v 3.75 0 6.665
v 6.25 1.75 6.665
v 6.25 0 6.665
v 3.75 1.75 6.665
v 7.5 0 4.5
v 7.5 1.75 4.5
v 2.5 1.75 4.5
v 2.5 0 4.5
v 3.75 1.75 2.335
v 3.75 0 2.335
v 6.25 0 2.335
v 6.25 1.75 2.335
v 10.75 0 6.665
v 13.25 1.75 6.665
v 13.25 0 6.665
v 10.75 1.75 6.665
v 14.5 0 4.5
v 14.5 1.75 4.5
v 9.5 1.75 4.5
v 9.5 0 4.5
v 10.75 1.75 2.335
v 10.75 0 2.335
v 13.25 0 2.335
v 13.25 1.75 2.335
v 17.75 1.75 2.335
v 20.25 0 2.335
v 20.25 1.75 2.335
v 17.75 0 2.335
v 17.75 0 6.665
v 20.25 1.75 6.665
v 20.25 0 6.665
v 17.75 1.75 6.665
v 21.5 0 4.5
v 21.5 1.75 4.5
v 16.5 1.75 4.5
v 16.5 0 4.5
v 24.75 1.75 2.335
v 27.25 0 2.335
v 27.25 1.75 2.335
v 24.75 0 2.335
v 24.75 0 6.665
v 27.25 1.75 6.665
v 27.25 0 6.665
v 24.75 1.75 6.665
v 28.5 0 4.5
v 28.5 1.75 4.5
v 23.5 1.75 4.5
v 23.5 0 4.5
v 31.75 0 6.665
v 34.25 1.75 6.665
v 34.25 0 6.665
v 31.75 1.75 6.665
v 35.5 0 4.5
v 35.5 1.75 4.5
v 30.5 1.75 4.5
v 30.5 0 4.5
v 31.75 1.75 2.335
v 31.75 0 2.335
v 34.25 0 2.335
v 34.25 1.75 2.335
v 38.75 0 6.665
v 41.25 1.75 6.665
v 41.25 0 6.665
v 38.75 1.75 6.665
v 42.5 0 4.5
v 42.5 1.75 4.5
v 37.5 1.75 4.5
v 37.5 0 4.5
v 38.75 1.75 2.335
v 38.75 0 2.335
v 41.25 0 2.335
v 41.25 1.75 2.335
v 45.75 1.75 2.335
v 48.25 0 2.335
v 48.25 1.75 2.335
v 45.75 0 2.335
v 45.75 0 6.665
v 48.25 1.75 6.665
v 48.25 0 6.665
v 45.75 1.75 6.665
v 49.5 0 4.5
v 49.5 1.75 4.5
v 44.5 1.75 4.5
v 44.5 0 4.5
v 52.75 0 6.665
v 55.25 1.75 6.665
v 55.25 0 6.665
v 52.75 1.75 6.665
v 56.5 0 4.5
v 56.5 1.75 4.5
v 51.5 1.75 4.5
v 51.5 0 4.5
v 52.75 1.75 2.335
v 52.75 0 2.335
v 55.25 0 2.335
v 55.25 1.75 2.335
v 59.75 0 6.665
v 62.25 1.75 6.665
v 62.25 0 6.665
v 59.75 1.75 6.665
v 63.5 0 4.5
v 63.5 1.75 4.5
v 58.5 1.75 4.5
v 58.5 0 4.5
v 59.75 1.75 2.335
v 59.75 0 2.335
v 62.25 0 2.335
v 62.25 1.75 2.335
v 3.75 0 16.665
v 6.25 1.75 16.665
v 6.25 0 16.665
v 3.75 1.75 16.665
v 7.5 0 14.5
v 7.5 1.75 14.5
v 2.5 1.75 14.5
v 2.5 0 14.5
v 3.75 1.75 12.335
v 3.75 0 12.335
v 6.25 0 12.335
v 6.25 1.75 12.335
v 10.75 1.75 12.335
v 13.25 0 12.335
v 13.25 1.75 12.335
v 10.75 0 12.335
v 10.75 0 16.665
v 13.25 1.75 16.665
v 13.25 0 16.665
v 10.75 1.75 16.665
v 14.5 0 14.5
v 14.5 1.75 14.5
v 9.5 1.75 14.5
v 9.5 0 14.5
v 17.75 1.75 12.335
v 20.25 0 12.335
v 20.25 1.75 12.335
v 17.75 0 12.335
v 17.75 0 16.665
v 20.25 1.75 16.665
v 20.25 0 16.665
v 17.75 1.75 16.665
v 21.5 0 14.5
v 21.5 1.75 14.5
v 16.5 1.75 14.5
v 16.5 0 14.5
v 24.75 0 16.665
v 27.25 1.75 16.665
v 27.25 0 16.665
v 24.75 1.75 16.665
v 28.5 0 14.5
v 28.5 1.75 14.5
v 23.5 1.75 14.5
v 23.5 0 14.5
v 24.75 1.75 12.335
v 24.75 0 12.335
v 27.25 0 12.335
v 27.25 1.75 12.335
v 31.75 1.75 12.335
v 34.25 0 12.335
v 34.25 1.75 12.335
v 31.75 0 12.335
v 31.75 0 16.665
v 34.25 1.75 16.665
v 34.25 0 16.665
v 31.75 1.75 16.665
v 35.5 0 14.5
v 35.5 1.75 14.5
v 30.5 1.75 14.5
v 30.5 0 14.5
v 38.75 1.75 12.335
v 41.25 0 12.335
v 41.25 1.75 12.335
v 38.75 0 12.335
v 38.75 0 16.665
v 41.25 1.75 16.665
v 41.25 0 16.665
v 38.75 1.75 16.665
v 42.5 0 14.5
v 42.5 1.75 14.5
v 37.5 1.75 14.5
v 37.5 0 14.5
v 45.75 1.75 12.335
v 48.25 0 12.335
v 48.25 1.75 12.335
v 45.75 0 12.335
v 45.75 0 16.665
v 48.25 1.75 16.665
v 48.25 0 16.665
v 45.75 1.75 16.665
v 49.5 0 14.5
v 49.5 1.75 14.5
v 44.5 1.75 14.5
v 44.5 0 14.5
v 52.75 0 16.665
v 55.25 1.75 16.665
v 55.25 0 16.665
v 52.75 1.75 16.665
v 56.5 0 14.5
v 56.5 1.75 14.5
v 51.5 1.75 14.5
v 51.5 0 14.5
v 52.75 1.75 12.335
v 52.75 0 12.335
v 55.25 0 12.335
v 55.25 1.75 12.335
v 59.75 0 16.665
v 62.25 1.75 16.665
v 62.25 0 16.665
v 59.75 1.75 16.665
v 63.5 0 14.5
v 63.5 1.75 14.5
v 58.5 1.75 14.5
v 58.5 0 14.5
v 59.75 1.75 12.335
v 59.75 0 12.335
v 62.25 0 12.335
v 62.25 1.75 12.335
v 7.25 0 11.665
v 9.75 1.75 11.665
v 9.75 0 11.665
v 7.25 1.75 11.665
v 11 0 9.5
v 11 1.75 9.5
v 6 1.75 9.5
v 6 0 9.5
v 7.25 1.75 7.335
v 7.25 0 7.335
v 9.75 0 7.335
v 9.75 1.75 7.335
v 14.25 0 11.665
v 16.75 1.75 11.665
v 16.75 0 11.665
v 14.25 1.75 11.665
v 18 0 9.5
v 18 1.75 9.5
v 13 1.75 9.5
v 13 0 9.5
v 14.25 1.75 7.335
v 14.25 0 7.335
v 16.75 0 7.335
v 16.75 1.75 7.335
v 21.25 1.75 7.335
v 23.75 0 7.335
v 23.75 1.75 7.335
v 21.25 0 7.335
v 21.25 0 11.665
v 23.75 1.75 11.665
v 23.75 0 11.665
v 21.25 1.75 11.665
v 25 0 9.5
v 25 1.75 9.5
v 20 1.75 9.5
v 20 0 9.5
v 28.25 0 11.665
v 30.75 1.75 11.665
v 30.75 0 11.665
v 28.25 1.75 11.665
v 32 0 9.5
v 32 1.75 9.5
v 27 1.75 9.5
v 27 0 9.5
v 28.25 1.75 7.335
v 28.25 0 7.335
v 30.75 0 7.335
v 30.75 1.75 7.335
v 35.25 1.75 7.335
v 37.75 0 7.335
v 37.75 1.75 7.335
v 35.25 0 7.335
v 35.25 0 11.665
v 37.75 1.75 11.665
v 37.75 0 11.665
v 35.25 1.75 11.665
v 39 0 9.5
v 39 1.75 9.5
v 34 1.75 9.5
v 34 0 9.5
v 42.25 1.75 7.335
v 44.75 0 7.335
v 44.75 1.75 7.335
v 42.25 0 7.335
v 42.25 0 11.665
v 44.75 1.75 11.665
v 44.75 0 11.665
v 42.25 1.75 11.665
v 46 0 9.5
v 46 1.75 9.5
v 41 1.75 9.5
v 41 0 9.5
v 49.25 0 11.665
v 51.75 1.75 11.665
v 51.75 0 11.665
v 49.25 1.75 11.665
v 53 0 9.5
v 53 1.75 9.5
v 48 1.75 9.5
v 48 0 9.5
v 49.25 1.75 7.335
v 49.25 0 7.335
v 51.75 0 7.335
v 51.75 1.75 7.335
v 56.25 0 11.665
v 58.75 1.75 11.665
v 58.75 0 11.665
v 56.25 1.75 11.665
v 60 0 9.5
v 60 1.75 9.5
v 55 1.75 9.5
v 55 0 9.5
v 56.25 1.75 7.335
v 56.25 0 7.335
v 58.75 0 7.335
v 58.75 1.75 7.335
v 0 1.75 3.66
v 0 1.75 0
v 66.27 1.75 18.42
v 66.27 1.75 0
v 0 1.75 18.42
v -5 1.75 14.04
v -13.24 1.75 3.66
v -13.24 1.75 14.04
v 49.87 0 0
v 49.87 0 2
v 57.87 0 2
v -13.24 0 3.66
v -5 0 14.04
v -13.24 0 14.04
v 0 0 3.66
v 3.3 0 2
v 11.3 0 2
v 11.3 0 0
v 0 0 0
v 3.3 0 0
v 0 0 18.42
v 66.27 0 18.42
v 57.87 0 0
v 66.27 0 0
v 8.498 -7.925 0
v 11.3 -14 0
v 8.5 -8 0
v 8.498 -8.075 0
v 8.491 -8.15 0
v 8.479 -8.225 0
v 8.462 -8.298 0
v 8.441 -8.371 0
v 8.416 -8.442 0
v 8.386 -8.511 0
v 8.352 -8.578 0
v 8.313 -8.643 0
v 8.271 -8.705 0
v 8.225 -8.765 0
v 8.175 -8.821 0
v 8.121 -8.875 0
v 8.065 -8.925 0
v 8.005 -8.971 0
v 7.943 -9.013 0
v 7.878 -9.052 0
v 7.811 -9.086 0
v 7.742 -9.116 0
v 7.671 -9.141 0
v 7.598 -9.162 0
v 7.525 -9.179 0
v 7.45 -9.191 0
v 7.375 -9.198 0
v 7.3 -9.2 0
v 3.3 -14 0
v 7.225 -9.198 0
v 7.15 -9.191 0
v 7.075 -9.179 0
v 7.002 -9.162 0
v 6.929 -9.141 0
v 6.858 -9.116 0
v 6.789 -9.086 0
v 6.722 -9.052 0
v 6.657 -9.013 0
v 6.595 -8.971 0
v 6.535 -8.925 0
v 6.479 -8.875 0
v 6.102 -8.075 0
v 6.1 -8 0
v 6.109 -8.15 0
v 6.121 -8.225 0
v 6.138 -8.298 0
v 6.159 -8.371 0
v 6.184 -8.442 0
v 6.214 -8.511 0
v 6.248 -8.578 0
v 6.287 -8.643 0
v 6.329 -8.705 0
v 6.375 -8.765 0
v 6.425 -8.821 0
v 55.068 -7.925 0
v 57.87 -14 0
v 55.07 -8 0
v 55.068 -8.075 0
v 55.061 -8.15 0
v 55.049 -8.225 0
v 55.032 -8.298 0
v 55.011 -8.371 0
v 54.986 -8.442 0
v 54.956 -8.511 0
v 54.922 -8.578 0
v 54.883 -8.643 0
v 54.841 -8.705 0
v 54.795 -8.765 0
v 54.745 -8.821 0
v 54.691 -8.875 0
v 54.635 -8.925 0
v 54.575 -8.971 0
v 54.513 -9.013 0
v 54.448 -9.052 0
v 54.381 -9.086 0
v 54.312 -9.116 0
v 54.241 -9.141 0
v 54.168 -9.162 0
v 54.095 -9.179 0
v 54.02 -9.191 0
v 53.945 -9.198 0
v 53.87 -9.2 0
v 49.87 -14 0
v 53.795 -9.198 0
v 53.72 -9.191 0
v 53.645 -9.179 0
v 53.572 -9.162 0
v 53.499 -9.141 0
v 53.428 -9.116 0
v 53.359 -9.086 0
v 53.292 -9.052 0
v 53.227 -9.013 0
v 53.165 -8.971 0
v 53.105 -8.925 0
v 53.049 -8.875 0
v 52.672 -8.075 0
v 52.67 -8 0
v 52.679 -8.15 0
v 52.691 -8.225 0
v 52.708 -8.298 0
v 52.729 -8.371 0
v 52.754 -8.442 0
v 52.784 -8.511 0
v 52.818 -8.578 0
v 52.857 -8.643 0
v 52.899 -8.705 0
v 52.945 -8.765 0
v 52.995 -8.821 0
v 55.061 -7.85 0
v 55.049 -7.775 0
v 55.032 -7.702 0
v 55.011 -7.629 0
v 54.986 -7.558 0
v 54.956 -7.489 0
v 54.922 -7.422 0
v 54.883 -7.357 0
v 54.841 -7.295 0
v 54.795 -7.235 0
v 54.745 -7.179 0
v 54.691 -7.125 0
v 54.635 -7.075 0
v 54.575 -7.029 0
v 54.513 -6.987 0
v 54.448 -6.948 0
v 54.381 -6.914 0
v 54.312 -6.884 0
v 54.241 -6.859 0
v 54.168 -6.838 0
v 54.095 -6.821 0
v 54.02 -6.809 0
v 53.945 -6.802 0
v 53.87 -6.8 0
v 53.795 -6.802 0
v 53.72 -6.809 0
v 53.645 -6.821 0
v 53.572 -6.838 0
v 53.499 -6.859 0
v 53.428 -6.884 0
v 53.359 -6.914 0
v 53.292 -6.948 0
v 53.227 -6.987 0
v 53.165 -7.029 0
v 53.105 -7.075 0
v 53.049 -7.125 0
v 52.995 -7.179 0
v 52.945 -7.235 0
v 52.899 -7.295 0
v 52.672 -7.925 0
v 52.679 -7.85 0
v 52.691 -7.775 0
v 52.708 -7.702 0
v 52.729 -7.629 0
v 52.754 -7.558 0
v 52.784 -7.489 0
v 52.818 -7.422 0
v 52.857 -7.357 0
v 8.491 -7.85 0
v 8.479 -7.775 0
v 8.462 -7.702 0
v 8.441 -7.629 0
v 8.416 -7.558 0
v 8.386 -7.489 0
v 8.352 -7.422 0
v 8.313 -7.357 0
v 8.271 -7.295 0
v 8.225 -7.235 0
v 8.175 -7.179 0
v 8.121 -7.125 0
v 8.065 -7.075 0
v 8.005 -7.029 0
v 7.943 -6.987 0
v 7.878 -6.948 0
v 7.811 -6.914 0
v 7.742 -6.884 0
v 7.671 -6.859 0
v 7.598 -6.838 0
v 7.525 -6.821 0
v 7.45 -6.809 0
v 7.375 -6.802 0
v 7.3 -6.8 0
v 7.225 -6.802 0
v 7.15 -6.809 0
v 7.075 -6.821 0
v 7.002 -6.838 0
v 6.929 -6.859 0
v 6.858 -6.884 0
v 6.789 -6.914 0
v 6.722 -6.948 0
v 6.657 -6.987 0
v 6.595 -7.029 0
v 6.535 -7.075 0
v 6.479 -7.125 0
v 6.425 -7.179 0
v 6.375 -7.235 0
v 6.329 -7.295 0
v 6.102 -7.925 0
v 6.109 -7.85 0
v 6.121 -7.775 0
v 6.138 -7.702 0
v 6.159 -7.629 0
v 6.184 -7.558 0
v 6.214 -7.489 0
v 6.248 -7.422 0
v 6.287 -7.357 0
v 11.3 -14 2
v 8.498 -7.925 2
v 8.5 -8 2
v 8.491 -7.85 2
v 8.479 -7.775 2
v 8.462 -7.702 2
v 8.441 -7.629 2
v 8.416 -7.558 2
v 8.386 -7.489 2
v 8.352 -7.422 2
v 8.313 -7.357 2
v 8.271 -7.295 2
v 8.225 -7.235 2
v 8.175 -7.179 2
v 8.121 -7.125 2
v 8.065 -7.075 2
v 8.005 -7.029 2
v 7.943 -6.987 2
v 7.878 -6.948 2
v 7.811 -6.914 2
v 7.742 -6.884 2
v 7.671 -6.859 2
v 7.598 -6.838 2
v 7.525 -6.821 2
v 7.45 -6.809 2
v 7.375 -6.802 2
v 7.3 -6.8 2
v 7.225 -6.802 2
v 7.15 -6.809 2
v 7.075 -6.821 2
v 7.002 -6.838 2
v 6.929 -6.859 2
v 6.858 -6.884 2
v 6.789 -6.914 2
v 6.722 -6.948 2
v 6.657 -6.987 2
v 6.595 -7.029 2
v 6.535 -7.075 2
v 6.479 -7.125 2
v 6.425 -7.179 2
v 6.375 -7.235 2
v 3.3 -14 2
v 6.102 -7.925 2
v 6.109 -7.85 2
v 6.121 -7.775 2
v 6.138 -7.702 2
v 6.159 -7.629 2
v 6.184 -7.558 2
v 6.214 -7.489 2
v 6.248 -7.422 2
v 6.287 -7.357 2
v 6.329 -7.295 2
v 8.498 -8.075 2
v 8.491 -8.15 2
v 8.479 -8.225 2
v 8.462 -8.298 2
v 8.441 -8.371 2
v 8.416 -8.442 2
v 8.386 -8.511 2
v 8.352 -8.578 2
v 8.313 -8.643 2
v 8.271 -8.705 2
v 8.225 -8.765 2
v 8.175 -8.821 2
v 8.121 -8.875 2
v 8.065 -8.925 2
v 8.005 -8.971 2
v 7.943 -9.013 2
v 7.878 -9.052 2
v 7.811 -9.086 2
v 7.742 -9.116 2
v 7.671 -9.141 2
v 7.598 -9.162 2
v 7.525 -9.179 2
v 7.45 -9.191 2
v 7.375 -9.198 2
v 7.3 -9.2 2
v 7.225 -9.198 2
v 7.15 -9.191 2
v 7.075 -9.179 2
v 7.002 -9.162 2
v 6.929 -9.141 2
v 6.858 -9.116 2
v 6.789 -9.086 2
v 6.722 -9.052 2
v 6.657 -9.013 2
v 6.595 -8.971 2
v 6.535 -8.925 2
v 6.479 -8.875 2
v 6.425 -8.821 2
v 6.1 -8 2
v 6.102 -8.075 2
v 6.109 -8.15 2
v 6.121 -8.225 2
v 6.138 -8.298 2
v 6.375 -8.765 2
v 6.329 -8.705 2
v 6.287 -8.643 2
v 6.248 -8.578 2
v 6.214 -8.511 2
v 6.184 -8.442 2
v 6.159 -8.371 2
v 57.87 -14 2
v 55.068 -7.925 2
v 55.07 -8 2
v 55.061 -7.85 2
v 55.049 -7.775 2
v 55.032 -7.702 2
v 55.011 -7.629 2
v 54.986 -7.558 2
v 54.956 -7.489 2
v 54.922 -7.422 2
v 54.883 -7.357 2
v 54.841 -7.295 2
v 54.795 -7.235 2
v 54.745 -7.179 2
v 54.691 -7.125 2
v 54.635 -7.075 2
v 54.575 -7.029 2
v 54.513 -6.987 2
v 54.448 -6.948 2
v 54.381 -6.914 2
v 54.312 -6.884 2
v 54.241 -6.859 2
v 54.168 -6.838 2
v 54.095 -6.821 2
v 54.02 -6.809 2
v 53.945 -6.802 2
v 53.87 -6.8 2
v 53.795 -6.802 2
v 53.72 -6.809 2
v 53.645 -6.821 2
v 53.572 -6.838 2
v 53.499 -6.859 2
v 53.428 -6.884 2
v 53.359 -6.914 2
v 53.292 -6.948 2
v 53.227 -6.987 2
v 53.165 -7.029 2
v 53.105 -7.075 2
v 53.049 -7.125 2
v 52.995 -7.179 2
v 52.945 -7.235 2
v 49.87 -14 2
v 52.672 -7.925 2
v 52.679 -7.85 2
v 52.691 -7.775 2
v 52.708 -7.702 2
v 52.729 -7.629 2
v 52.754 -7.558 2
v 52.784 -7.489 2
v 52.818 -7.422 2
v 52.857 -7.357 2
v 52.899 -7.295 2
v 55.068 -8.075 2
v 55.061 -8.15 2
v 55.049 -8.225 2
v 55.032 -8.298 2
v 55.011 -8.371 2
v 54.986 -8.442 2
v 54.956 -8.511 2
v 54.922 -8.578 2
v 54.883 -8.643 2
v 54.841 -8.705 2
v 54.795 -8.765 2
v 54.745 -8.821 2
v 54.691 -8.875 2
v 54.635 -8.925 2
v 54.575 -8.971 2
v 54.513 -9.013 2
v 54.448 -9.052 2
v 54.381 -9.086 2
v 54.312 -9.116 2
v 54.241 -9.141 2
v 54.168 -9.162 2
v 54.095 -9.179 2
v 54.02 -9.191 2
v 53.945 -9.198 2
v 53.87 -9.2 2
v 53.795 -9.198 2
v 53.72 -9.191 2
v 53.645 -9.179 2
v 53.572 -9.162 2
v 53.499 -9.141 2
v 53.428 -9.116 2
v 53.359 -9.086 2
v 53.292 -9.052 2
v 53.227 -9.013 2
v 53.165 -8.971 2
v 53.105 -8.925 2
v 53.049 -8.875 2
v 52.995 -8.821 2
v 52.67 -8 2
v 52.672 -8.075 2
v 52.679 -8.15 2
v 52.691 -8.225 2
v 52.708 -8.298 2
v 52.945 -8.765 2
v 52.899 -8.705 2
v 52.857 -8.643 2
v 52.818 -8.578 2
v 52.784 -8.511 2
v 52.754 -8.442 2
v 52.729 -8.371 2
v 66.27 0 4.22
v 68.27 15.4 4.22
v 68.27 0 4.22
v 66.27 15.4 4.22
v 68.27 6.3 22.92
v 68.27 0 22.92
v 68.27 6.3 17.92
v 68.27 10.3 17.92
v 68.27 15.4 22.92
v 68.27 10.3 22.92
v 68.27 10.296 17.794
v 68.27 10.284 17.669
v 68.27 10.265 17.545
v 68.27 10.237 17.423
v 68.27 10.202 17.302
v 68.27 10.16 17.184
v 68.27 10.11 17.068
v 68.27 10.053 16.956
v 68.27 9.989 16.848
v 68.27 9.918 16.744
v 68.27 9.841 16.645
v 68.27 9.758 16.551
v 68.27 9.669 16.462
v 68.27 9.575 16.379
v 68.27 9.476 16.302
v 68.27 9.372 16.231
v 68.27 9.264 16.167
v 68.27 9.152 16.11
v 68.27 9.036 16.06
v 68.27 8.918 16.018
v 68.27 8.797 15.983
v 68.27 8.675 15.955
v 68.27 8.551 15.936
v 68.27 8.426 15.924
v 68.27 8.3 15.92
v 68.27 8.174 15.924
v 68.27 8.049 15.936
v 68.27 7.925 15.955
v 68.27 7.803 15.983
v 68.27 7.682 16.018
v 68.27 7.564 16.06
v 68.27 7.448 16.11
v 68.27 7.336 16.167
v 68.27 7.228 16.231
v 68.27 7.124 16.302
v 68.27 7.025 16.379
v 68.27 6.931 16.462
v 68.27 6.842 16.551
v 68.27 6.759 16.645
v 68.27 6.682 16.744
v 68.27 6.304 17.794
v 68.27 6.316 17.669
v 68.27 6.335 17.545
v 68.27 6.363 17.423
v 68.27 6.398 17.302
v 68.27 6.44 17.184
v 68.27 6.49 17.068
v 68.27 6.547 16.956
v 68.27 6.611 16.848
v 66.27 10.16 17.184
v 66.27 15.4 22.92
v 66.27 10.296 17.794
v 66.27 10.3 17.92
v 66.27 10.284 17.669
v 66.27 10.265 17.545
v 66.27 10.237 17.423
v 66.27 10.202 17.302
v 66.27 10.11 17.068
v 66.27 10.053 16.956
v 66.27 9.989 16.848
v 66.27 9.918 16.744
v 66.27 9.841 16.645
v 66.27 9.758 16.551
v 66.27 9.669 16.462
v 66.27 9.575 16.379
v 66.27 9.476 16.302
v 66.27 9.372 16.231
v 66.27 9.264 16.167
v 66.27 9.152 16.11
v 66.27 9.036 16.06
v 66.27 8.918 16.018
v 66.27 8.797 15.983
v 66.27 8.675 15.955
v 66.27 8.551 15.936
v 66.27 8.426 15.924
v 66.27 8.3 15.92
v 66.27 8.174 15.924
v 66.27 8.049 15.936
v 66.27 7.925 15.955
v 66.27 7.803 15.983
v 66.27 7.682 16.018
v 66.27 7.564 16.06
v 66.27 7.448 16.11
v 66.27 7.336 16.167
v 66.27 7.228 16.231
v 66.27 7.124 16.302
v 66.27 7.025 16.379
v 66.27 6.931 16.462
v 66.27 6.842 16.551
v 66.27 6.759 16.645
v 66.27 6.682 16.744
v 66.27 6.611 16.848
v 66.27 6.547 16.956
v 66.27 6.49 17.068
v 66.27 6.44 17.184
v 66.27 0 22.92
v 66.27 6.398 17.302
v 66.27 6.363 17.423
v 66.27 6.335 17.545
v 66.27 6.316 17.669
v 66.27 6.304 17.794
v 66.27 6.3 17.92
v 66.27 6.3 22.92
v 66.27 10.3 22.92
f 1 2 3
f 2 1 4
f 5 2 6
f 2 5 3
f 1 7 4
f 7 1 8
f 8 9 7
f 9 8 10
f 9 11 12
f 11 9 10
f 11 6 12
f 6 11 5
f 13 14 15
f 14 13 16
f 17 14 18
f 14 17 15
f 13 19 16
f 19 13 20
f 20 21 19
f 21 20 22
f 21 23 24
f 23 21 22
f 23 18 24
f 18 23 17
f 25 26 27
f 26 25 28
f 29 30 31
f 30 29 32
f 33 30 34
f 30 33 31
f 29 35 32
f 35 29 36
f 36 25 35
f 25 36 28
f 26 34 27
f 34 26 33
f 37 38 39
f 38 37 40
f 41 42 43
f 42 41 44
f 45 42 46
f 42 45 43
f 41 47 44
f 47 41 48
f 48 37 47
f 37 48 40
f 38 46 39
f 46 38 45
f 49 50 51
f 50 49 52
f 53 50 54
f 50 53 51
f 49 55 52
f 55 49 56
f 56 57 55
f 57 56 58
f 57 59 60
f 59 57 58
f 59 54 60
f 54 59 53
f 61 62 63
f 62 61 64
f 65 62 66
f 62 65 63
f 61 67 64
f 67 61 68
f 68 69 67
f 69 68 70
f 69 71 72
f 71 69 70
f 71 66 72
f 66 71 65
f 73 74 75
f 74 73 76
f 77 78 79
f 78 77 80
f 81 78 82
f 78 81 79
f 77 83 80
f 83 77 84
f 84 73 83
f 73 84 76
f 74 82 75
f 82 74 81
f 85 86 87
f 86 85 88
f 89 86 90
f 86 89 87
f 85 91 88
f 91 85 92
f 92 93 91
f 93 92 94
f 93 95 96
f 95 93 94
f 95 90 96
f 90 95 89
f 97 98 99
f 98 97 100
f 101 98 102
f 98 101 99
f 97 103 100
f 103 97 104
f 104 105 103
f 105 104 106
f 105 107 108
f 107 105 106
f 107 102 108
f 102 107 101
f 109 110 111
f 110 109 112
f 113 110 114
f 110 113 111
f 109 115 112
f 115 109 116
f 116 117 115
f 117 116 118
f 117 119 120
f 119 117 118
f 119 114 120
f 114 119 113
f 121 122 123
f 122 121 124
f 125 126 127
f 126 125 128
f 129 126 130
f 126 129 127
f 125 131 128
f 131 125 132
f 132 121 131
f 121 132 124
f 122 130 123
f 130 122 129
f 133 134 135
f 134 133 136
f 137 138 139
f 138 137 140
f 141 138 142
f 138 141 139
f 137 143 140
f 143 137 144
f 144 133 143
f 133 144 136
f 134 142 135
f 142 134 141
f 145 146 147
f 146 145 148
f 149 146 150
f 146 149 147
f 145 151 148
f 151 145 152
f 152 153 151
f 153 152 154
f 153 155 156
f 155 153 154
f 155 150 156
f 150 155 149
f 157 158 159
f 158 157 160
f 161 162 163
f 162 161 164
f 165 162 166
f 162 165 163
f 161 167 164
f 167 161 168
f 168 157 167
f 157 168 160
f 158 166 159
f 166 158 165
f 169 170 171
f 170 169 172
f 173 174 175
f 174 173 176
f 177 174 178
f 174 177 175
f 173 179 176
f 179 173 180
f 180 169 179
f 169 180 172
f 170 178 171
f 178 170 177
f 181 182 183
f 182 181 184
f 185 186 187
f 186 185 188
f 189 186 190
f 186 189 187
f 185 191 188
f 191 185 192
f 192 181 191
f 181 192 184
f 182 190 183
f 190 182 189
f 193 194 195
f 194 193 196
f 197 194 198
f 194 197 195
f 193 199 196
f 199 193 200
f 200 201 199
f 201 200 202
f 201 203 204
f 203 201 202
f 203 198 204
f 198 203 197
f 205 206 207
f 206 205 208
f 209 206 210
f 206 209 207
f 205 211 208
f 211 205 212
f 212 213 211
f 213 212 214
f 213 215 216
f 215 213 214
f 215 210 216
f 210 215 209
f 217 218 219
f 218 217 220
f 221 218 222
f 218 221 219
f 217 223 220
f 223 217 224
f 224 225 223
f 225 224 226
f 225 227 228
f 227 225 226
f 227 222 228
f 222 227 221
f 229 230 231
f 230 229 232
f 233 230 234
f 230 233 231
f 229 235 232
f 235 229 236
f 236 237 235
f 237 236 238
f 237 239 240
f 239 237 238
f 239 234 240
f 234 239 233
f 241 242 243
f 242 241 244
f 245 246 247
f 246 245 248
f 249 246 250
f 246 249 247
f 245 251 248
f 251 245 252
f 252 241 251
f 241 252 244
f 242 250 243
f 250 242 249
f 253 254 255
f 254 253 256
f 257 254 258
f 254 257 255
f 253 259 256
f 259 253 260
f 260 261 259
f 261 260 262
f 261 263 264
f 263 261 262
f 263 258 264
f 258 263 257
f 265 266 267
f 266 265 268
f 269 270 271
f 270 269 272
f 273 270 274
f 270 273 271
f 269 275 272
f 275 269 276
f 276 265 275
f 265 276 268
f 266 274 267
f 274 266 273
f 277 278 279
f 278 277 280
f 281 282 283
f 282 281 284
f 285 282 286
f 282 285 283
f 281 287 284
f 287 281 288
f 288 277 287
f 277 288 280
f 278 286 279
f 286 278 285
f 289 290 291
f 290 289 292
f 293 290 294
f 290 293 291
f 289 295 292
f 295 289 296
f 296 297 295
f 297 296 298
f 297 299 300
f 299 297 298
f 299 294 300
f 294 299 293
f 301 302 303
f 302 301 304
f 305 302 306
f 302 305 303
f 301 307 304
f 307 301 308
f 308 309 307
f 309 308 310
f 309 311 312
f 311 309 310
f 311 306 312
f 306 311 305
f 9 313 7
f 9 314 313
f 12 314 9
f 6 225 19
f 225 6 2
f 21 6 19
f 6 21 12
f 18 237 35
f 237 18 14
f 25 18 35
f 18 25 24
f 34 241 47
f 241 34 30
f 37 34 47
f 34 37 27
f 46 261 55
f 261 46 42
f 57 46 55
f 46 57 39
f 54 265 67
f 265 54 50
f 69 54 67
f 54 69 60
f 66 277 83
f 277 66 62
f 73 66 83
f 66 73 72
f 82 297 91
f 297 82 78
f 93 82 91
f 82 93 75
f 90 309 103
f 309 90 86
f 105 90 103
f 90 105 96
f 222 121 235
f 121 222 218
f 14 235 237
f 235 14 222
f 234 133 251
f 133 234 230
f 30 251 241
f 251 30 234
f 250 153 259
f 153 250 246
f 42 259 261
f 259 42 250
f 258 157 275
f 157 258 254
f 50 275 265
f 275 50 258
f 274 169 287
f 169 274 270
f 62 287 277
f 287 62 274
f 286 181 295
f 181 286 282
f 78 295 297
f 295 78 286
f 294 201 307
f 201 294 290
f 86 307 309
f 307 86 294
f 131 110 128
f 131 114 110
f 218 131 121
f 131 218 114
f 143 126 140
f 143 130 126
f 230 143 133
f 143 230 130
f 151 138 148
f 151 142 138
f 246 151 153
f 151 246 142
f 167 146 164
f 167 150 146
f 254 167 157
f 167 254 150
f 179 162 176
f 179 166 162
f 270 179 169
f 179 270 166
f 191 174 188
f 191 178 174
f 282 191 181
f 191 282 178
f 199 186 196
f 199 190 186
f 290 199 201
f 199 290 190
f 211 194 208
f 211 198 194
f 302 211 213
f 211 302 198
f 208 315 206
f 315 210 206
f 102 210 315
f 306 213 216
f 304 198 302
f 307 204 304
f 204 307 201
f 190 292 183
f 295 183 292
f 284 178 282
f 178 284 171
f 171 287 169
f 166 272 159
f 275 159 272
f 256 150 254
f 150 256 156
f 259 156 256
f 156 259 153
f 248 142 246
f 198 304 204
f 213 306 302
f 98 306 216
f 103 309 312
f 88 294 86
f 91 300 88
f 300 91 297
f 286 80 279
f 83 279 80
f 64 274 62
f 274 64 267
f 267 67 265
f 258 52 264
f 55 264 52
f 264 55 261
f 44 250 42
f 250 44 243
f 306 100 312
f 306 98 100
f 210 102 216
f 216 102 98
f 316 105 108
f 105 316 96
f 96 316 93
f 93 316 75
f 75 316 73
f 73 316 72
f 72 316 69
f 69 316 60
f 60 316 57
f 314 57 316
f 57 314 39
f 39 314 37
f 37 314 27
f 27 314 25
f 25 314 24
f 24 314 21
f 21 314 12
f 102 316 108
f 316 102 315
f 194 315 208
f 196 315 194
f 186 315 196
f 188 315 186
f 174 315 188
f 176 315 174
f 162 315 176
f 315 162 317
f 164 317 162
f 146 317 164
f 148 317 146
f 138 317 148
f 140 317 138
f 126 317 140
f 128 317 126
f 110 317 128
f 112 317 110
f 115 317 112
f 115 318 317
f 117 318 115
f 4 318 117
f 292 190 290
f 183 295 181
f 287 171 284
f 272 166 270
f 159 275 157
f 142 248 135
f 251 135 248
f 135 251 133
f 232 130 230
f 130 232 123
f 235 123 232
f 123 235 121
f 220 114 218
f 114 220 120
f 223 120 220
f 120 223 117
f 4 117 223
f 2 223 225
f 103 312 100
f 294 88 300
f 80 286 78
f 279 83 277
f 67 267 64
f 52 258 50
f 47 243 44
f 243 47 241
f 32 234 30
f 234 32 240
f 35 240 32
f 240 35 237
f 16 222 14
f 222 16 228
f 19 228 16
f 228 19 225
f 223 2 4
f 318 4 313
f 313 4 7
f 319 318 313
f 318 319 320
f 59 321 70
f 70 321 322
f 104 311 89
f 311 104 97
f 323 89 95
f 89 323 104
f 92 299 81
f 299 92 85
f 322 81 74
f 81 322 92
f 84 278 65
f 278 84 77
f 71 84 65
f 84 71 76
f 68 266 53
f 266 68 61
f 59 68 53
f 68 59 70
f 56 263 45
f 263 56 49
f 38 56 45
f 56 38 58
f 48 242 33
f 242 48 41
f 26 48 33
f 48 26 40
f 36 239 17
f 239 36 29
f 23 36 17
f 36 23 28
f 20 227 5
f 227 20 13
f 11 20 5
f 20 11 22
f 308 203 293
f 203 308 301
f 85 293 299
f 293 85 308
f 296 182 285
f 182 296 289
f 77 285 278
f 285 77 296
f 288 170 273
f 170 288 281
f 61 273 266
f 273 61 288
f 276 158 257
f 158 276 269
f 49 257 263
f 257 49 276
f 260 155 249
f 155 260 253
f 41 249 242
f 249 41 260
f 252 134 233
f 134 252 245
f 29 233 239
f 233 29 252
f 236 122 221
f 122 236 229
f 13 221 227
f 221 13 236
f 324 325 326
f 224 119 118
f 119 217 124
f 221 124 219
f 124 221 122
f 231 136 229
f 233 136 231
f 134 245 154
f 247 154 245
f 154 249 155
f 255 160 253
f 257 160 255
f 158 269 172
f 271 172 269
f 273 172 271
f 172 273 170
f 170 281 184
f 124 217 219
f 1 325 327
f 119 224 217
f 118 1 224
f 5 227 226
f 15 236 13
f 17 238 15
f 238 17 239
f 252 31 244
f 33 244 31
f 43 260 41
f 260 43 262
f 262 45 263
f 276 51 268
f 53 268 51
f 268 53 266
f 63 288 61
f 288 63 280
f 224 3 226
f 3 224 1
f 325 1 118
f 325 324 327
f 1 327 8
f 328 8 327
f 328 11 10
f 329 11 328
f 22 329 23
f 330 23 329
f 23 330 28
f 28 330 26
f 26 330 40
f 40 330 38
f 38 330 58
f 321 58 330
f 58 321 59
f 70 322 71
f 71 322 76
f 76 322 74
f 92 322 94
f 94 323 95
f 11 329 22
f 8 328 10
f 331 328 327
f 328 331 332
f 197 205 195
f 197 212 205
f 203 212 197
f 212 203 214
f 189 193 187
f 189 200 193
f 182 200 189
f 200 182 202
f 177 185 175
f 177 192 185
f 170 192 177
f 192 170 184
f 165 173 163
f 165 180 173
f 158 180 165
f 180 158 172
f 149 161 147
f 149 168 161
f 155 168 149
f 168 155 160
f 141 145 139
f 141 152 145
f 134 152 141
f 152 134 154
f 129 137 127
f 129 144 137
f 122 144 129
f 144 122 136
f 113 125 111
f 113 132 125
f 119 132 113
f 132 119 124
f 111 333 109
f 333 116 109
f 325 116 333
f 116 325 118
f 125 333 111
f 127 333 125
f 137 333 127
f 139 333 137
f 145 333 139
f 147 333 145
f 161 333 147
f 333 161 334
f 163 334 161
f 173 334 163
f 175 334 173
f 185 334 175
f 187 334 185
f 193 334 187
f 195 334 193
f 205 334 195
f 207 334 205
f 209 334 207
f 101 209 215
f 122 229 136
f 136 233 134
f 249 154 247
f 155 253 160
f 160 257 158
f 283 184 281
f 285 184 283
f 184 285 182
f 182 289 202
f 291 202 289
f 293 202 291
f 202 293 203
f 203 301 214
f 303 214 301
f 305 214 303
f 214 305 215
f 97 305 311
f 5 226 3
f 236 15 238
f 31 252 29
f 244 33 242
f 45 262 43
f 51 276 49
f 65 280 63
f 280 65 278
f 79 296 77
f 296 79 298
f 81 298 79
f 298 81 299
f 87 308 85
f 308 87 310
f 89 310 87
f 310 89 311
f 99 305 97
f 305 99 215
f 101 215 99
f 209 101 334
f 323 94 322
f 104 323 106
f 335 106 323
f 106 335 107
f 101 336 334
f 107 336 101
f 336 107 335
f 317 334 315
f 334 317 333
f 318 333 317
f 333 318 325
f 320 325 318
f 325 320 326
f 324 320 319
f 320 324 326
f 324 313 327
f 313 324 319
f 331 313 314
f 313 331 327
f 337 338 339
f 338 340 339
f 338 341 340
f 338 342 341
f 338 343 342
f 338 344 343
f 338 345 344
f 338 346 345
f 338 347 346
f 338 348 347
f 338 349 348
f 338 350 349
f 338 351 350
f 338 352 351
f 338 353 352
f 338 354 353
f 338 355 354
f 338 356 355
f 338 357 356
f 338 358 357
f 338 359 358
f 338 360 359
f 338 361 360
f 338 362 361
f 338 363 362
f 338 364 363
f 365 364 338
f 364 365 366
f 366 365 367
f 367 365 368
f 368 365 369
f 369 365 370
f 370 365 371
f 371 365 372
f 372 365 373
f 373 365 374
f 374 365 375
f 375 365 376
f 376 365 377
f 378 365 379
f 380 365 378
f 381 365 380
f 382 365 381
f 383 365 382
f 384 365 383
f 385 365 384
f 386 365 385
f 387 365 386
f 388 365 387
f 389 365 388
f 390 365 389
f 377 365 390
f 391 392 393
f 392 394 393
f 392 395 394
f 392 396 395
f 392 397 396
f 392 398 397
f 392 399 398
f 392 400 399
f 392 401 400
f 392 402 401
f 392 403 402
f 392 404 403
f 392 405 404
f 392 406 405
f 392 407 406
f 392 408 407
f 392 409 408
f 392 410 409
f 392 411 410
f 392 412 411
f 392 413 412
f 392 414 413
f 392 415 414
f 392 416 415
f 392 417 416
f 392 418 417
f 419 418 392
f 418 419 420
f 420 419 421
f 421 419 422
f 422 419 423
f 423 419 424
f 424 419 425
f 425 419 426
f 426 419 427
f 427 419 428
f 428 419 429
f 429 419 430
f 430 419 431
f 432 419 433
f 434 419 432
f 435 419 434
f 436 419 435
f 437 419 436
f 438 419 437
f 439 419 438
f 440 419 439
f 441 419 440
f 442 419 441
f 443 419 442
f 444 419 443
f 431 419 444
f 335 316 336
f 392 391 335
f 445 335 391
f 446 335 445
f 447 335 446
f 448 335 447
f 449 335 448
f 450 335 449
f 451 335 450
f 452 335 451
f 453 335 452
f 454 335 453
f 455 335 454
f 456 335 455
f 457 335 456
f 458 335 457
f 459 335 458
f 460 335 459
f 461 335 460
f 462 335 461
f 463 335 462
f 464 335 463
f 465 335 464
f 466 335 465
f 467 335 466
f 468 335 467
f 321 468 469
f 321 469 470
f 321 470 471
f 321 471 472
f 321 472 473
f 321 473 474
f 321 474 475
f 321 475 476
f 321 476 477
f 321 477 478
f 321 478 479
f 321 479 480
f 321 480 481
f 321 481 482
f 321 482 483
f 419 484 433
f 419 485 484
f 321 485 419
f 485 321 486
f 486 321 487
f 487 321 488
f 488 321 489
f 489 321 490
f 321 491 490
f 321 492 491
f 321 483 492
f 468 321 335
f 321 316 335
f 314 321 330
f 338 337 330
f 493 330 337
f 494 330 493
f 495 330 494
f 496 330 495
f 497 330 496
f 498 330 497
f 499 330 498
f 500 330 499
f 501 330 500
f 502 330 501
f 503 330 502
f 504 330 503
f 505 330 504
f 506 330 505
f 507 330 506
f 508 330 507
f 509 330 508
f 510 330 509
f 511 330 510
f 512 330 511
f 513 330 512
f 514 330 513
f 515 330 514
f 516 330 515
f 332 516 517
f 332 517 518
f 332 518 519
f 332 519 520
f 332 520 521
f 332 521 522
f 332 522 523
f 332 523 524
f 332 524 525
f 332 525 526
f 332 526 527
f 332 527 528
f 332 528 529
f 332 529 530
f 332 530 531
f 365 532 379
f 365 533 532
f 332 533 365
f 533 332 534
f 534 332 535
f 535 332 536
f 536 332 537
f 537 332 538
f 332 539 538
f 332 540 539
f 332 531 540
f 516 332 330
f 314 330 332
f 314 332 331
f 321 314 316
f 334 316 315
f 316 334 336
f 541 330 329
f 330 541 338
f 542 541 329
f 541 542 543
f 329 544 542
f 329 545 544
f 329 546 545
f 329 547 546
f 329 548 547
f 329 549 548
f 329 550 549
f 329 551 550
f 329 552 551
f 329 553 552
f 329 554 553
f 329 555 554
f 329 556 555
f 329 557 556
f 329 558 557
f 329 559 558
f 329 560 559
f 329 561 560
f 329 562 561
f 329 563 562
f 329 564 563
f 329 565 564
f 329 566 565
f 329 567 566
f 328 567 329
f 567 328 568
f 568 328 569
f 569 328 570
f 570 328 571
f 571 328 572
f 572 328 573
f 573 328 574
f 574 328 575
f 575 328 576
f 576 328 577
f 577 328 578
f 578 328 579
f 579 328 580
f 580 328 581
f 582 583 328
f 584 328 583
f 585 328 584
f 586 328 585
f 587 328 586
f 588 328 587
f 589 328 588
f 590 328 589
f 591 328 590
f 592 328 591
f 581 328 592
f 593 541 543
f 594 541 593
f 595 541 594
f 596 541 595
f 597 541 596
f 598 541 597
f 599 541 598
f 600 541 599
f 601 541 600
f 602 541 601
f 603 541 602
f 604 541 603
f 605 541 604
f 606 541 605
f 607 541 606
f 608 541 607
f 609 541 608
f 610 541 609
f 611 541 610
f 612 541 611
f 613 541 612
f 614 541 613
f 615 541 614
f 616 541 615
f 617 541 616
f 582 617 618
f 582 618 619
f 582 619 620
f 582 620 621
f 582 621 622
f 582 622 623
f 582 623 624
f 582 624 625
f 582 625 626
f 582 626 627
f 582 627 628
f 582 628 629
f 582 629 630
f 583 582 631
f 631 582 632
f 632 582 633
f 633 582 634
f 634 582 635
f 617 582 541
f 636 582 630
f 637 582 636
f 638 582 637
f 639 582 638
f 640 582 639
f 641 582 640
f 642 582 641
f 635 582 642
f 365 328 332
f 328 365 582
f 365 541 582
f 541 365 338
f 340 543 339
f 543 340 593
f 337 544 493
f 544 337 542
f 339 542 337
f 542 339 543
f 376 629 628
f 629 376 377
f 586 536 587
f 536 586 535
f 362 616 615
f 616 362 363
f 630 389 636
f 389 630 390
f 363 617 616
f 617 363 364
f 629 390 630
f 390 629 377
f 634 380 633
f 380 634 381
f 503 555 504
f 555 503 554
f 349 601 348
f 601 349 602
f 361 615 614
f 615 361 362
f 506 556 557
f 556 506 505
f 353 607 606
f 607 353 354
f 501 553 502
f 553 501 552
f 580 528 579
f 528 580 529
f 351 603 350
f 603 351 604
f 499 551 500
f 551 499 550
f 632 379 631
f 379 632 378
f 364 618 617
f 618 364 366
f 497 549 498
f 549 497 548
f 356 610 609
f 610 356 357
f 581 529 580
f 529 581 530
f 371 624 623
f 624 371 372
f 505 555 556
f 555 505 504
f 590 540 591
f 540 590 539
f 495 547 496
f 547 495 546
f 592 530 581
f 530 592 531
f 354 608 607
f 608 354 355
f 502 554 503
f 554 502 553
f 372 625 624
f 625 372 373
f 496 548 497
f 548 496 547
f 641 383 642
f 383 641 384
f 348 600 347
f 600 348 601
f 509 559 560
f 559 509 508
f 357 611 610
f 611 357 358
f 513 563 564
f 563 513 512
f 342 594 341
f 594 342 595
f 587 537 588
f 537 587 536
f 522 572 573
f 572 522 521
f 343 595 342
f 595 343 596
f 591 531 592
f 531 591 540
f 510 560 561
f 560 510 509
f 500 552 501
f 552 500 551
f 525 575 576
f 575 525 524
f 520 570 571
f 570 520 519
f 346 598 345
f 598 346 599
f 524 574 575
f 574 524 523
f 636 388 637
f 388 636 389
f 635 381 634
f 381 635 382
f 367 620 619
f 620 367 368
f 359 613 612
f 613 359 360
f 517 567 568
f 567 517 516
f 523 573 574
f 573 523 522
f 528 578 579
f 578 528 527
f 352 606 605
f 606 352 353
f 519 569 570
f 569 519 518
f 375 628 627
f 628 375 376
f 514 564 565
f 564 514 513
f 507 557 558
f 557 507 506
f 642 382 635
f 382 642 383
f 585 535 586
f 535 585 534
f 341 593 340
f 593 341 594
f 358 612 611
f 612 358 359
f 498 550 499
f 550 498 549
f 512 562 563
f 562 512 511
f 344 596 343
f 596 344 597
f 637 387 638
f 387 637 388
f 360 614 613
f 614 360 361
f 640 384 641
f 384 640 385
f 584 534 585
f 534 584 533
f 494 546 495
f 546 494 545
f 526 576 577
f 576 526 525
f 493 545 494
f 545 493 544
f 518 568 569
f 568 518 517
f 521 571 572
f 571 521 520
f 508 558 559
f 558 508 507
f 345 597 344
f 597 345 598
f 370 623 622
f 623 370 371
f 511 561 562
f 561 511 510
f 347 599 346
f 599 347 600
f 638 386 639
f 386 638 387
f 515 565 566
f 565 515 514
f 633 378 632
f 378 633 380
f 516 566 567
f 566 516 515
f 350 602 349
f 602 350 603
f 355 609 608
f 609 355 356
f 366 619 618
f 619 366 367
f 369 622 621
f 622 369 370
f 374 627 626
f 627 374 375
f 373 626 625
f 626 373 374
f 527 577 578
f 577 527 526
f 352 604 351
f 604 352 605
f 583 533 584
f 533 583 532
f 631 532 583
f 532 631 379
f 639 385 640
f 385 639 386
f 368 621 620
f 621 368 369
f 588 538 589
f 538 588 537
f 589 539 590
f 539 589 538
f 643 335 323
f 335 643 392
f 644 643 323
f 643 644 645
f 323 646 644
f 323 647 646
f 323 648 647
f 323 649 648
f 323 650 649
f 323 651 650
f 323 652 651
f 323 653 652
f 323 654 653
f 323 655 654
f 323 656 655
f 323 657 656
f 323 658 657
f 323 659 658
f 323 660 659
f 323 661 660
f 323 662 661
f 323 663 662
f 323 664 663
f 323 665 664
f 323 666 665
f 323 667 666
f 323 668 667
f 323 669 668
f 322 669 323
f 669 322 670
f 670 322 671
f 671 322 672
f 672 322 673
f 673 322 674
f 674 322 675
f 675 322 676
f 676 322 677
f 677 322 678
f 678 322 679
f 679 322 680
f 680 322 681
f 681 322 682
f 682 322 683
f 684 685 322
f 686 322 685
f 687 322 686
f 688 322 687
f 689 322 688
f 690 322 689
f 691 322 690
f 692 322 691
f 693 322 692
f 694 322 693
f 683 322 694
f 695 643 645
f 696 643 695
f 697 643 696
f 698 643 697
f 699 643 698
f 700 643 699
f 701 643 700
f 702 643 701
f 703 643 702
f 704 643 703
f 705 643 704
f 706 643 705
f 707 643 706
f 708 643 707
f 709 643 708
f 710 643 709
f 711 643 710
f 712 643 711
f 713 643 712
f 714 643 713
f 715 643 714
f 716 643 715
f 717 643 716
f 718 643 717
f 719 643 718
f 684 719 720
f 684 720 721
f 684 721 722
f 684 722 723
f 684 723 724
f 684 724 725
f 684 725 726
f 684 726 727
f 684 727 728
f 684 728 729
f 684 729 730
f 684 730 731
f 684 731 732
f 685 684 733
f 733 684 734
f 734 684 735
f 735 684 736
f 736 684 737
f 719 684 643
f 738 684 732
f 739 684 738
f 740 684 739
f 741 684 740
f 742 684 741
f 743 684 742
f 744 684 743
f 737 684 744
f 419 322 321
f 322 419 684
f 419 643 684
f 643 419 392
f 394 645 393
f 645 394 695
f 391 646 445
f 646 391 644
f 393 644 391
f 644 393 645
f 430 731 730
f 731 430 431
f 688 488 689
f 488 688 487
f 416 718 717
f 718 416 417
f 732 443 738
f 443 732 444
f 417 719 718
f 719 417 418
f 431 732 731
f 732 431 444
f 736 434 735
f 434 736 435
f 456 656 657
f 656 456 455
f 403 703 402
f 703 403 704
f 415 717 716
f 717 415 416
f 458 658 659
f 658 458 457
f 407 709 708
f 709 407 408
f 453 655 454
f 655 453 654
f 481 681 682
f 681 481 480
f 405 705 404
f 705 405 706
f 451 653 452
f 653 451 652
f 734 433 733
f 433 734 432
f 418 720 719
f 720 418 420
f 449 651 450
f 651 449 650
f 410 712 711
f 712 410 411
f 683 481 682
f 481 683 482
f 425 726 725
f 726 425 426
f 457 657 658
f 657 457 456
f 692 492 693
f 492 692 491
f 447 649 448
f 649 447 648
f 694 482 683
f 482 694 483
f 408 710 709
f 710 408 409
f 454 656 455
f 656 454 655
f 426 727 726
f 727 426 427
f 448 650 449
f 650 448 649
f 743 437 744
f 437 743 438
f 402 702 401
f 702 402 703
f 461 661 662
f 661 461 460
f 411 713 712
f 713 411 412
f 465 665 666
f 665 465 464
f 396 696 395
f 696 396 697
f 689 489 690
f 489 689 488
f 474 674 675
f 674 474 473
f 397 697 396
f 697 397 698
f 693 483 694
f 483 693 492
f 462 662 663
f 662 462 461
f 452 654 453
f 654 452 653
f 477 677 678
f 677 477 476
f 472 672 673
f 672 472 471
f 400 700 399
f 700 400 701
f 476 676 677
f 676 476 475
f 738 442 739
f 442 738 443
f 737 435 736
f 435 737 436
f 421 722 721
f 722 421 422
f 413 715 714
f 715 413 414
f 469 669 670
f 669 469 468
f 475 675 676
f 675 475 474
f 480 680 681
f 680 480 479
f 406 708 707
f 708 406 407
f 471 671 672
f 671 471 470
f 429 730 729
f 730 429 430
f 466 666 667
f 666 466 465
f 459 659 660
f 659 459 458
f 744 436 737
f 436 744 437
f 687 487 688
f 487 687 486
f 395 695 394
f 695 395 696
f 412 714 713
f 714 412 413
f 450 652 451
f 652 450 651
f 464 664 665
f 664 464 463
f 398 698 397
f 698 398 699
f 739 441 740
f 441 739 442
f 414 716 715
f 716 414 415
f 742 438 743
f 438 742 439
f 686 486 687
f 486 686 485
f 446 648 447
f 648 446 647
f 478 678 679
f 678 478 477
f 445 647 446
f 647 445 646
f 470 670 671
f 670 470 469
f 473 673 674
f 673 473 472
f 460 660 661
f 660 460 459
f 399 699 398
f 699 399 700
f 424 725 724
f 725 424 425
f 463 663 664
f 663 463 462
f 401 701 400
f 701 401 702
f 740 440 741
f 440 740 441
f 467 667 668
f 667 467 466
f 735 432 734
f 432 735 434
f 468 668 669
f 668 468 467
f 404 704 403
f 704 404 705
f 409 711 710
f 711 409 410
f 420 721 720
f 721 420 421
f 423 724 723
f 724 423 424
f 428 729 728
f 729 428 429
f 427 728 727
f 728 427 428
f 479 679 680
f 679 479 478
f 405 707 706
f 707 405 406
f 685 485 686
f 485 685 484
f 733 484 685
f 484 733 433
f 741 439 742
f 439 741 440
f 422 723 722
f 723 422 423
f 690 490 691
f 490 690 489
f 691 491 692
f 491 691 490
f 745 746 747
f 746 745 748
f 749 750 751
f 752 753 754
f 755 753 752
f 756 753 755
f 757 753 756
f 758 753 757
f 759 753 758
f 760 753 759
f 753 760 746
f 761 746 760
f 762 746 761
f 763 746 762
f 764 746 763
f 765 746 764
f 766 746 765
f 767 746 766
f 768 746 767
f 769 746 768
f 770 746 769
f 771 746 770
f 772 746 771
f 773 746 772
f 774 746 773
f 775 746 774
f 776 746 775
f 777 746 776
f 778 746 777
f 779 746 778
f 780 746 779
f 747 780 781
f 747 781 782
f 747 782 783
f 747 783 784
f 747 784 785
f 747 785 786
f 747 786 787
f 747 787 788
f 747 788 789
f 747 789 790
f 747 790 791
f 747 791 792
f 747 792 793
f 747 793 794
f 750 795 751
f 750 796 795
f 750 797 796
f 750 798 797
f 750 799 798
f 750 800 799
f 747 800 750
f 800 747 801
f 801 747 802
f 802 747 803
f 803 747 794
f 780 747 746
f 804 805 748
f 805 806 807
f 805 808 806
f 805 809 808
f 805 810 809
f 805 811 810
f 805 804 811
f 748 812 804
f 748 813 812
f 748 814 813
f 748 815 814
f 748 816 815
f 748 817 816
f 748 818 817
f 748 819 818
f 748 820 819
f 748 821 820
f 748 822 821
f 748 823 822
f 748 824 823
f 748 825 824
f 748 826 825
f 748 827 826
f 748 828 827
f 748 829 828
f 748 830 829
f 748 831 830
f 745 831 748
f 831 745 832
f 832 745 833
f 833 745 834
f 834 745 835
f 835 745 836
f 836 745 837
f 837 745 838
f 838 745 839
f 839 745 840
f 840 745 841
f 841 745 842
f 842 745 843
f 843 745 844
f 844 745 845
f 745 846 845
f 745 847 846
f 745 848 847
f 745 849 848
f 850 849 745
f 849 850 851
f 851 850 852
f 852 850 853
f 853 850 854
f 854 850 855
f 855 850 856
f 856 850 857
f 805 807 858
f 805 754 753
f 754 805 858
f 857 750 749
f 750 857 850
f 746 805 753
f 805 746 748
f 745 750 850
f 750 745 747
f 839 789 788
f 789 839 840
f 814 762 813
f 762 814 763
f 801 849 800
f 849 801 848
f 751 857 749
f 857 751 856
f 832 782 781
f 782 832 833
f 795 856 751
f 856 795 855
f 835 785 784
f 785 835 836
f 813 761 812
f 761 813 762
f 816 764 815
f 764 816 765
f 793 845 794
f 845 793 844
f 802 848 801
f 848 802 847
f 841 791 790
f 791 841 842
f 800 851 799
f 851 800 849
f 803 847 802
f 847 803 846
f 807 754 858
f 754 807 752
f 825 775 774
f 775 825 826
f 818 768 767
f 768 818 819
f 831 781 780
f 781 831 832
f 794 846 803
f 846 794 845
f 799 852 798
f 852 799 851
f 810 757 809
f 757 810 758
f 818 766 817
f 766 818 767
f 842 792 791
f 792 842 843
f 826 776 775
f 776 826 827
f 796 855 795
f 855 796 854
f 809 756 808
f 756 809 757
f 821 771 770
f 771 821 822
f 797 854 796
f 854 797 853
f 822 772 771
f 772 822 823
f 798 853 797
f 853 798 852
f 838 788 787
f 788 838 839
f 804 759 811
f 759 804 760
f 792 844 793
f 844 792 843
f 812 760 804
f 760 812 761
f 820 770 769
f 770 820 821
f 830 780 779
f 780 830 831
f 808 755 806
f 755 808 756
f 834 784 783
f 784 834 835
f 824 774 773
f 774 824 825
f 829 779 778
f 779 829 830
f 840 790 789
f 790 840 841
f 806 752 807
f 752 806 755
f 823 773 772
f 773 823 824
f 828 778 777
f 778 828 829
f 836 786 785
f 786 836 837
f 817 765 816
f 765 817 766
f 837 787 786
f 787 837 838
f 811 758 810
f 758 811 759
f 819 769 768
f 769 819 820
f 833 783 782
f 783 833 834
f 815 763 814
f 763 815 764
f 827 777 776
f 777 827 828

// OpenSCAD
// position of first screw, in respect to card base
A =  7.3;

// distance between the 2 screw centers
B = 46.57;

// distance of the screw from pci bracket
C = 8.0;

// M3 hole diameter
M3= 2.4;

/* [Hidden] */
h_pci_cutout = 66.27;

module plate() {
thick = 1.75;
plug_bottom  =-13.24;
board_bottom =  0.0;
w_pci_cutout = 18.42;
w_connector  = 10.38;
w_margin     =  3.16 + 0.5;
points = [  [plug_bottom, w_margin], 
            [board_bottom, w_margin],
            [board_bottom, 0], 
            [h_pci_cutout, 0],
            [h_pci_cutout, w_pci_cutout],
            [board_bottom, w_pci_cutout],
            [-5, w_margin + w_connector], 
            [ plug_bottom, w_margin + w_connector] ];

difference() {
    translate([ 0, 0, -thick])
    linear_extrude(height = thick) {
        polygon( points);
    }
    // first and third row of holes
    for (b = [4.5:10:14.5]) {
        for (a = [0:7:56]) {
            translate([5 + a, b, -30])
            cylinder(60, d=5, $fn=6);
        }
    }
    // second row of holes
    for (a =[0:7:49]) {
        translate([8.5 + a,9.5,-30])
        cylinder(60, d=5, $fn=6);
    }
}

}

// fix plate


module fix() {
    half   =  4;
    length = 14;
    thick  =  2;
difference() {
    translate([ -half, -length, 0]) cube( size=[ 2*half, length, thick] );
    translate([ 0, -C, 0]) 
    cylinder (h = 10, r=M3/2, center = true, $fn=100);
}
}




module pci() {
    M4 = 4.0;

    width  = 12.40 + 3;
    length = 18.70;
    thick  =  2;
    shift  = 4.22;
translate([ -( length + shift), 0, 0])
difference() {
    cube( size=[ length, width, thick] );

    translate([ 0, width/2 + 0.6, 0])
    hull() {
        cylinder (h = 10, r=M4/2, center = true, $fn=100);
        translate([ 5, 0, 0])
        cylinder (h = 10, r=M4/2, center = true, $fn=100);
    }
}
}



// make plate front side
color("SkyBlue")
rotate( [ 90, 0, 0]) plate();

// fix plate
color("red") {
translate([ A, 0, 0]) fix();
translate([ A + B, 0, 0]) fix();
}

// pci holder
color("green")
translate([ h_pci_cutout, 0, 0])
rotate( [ 0, 90, 0]) pci();
